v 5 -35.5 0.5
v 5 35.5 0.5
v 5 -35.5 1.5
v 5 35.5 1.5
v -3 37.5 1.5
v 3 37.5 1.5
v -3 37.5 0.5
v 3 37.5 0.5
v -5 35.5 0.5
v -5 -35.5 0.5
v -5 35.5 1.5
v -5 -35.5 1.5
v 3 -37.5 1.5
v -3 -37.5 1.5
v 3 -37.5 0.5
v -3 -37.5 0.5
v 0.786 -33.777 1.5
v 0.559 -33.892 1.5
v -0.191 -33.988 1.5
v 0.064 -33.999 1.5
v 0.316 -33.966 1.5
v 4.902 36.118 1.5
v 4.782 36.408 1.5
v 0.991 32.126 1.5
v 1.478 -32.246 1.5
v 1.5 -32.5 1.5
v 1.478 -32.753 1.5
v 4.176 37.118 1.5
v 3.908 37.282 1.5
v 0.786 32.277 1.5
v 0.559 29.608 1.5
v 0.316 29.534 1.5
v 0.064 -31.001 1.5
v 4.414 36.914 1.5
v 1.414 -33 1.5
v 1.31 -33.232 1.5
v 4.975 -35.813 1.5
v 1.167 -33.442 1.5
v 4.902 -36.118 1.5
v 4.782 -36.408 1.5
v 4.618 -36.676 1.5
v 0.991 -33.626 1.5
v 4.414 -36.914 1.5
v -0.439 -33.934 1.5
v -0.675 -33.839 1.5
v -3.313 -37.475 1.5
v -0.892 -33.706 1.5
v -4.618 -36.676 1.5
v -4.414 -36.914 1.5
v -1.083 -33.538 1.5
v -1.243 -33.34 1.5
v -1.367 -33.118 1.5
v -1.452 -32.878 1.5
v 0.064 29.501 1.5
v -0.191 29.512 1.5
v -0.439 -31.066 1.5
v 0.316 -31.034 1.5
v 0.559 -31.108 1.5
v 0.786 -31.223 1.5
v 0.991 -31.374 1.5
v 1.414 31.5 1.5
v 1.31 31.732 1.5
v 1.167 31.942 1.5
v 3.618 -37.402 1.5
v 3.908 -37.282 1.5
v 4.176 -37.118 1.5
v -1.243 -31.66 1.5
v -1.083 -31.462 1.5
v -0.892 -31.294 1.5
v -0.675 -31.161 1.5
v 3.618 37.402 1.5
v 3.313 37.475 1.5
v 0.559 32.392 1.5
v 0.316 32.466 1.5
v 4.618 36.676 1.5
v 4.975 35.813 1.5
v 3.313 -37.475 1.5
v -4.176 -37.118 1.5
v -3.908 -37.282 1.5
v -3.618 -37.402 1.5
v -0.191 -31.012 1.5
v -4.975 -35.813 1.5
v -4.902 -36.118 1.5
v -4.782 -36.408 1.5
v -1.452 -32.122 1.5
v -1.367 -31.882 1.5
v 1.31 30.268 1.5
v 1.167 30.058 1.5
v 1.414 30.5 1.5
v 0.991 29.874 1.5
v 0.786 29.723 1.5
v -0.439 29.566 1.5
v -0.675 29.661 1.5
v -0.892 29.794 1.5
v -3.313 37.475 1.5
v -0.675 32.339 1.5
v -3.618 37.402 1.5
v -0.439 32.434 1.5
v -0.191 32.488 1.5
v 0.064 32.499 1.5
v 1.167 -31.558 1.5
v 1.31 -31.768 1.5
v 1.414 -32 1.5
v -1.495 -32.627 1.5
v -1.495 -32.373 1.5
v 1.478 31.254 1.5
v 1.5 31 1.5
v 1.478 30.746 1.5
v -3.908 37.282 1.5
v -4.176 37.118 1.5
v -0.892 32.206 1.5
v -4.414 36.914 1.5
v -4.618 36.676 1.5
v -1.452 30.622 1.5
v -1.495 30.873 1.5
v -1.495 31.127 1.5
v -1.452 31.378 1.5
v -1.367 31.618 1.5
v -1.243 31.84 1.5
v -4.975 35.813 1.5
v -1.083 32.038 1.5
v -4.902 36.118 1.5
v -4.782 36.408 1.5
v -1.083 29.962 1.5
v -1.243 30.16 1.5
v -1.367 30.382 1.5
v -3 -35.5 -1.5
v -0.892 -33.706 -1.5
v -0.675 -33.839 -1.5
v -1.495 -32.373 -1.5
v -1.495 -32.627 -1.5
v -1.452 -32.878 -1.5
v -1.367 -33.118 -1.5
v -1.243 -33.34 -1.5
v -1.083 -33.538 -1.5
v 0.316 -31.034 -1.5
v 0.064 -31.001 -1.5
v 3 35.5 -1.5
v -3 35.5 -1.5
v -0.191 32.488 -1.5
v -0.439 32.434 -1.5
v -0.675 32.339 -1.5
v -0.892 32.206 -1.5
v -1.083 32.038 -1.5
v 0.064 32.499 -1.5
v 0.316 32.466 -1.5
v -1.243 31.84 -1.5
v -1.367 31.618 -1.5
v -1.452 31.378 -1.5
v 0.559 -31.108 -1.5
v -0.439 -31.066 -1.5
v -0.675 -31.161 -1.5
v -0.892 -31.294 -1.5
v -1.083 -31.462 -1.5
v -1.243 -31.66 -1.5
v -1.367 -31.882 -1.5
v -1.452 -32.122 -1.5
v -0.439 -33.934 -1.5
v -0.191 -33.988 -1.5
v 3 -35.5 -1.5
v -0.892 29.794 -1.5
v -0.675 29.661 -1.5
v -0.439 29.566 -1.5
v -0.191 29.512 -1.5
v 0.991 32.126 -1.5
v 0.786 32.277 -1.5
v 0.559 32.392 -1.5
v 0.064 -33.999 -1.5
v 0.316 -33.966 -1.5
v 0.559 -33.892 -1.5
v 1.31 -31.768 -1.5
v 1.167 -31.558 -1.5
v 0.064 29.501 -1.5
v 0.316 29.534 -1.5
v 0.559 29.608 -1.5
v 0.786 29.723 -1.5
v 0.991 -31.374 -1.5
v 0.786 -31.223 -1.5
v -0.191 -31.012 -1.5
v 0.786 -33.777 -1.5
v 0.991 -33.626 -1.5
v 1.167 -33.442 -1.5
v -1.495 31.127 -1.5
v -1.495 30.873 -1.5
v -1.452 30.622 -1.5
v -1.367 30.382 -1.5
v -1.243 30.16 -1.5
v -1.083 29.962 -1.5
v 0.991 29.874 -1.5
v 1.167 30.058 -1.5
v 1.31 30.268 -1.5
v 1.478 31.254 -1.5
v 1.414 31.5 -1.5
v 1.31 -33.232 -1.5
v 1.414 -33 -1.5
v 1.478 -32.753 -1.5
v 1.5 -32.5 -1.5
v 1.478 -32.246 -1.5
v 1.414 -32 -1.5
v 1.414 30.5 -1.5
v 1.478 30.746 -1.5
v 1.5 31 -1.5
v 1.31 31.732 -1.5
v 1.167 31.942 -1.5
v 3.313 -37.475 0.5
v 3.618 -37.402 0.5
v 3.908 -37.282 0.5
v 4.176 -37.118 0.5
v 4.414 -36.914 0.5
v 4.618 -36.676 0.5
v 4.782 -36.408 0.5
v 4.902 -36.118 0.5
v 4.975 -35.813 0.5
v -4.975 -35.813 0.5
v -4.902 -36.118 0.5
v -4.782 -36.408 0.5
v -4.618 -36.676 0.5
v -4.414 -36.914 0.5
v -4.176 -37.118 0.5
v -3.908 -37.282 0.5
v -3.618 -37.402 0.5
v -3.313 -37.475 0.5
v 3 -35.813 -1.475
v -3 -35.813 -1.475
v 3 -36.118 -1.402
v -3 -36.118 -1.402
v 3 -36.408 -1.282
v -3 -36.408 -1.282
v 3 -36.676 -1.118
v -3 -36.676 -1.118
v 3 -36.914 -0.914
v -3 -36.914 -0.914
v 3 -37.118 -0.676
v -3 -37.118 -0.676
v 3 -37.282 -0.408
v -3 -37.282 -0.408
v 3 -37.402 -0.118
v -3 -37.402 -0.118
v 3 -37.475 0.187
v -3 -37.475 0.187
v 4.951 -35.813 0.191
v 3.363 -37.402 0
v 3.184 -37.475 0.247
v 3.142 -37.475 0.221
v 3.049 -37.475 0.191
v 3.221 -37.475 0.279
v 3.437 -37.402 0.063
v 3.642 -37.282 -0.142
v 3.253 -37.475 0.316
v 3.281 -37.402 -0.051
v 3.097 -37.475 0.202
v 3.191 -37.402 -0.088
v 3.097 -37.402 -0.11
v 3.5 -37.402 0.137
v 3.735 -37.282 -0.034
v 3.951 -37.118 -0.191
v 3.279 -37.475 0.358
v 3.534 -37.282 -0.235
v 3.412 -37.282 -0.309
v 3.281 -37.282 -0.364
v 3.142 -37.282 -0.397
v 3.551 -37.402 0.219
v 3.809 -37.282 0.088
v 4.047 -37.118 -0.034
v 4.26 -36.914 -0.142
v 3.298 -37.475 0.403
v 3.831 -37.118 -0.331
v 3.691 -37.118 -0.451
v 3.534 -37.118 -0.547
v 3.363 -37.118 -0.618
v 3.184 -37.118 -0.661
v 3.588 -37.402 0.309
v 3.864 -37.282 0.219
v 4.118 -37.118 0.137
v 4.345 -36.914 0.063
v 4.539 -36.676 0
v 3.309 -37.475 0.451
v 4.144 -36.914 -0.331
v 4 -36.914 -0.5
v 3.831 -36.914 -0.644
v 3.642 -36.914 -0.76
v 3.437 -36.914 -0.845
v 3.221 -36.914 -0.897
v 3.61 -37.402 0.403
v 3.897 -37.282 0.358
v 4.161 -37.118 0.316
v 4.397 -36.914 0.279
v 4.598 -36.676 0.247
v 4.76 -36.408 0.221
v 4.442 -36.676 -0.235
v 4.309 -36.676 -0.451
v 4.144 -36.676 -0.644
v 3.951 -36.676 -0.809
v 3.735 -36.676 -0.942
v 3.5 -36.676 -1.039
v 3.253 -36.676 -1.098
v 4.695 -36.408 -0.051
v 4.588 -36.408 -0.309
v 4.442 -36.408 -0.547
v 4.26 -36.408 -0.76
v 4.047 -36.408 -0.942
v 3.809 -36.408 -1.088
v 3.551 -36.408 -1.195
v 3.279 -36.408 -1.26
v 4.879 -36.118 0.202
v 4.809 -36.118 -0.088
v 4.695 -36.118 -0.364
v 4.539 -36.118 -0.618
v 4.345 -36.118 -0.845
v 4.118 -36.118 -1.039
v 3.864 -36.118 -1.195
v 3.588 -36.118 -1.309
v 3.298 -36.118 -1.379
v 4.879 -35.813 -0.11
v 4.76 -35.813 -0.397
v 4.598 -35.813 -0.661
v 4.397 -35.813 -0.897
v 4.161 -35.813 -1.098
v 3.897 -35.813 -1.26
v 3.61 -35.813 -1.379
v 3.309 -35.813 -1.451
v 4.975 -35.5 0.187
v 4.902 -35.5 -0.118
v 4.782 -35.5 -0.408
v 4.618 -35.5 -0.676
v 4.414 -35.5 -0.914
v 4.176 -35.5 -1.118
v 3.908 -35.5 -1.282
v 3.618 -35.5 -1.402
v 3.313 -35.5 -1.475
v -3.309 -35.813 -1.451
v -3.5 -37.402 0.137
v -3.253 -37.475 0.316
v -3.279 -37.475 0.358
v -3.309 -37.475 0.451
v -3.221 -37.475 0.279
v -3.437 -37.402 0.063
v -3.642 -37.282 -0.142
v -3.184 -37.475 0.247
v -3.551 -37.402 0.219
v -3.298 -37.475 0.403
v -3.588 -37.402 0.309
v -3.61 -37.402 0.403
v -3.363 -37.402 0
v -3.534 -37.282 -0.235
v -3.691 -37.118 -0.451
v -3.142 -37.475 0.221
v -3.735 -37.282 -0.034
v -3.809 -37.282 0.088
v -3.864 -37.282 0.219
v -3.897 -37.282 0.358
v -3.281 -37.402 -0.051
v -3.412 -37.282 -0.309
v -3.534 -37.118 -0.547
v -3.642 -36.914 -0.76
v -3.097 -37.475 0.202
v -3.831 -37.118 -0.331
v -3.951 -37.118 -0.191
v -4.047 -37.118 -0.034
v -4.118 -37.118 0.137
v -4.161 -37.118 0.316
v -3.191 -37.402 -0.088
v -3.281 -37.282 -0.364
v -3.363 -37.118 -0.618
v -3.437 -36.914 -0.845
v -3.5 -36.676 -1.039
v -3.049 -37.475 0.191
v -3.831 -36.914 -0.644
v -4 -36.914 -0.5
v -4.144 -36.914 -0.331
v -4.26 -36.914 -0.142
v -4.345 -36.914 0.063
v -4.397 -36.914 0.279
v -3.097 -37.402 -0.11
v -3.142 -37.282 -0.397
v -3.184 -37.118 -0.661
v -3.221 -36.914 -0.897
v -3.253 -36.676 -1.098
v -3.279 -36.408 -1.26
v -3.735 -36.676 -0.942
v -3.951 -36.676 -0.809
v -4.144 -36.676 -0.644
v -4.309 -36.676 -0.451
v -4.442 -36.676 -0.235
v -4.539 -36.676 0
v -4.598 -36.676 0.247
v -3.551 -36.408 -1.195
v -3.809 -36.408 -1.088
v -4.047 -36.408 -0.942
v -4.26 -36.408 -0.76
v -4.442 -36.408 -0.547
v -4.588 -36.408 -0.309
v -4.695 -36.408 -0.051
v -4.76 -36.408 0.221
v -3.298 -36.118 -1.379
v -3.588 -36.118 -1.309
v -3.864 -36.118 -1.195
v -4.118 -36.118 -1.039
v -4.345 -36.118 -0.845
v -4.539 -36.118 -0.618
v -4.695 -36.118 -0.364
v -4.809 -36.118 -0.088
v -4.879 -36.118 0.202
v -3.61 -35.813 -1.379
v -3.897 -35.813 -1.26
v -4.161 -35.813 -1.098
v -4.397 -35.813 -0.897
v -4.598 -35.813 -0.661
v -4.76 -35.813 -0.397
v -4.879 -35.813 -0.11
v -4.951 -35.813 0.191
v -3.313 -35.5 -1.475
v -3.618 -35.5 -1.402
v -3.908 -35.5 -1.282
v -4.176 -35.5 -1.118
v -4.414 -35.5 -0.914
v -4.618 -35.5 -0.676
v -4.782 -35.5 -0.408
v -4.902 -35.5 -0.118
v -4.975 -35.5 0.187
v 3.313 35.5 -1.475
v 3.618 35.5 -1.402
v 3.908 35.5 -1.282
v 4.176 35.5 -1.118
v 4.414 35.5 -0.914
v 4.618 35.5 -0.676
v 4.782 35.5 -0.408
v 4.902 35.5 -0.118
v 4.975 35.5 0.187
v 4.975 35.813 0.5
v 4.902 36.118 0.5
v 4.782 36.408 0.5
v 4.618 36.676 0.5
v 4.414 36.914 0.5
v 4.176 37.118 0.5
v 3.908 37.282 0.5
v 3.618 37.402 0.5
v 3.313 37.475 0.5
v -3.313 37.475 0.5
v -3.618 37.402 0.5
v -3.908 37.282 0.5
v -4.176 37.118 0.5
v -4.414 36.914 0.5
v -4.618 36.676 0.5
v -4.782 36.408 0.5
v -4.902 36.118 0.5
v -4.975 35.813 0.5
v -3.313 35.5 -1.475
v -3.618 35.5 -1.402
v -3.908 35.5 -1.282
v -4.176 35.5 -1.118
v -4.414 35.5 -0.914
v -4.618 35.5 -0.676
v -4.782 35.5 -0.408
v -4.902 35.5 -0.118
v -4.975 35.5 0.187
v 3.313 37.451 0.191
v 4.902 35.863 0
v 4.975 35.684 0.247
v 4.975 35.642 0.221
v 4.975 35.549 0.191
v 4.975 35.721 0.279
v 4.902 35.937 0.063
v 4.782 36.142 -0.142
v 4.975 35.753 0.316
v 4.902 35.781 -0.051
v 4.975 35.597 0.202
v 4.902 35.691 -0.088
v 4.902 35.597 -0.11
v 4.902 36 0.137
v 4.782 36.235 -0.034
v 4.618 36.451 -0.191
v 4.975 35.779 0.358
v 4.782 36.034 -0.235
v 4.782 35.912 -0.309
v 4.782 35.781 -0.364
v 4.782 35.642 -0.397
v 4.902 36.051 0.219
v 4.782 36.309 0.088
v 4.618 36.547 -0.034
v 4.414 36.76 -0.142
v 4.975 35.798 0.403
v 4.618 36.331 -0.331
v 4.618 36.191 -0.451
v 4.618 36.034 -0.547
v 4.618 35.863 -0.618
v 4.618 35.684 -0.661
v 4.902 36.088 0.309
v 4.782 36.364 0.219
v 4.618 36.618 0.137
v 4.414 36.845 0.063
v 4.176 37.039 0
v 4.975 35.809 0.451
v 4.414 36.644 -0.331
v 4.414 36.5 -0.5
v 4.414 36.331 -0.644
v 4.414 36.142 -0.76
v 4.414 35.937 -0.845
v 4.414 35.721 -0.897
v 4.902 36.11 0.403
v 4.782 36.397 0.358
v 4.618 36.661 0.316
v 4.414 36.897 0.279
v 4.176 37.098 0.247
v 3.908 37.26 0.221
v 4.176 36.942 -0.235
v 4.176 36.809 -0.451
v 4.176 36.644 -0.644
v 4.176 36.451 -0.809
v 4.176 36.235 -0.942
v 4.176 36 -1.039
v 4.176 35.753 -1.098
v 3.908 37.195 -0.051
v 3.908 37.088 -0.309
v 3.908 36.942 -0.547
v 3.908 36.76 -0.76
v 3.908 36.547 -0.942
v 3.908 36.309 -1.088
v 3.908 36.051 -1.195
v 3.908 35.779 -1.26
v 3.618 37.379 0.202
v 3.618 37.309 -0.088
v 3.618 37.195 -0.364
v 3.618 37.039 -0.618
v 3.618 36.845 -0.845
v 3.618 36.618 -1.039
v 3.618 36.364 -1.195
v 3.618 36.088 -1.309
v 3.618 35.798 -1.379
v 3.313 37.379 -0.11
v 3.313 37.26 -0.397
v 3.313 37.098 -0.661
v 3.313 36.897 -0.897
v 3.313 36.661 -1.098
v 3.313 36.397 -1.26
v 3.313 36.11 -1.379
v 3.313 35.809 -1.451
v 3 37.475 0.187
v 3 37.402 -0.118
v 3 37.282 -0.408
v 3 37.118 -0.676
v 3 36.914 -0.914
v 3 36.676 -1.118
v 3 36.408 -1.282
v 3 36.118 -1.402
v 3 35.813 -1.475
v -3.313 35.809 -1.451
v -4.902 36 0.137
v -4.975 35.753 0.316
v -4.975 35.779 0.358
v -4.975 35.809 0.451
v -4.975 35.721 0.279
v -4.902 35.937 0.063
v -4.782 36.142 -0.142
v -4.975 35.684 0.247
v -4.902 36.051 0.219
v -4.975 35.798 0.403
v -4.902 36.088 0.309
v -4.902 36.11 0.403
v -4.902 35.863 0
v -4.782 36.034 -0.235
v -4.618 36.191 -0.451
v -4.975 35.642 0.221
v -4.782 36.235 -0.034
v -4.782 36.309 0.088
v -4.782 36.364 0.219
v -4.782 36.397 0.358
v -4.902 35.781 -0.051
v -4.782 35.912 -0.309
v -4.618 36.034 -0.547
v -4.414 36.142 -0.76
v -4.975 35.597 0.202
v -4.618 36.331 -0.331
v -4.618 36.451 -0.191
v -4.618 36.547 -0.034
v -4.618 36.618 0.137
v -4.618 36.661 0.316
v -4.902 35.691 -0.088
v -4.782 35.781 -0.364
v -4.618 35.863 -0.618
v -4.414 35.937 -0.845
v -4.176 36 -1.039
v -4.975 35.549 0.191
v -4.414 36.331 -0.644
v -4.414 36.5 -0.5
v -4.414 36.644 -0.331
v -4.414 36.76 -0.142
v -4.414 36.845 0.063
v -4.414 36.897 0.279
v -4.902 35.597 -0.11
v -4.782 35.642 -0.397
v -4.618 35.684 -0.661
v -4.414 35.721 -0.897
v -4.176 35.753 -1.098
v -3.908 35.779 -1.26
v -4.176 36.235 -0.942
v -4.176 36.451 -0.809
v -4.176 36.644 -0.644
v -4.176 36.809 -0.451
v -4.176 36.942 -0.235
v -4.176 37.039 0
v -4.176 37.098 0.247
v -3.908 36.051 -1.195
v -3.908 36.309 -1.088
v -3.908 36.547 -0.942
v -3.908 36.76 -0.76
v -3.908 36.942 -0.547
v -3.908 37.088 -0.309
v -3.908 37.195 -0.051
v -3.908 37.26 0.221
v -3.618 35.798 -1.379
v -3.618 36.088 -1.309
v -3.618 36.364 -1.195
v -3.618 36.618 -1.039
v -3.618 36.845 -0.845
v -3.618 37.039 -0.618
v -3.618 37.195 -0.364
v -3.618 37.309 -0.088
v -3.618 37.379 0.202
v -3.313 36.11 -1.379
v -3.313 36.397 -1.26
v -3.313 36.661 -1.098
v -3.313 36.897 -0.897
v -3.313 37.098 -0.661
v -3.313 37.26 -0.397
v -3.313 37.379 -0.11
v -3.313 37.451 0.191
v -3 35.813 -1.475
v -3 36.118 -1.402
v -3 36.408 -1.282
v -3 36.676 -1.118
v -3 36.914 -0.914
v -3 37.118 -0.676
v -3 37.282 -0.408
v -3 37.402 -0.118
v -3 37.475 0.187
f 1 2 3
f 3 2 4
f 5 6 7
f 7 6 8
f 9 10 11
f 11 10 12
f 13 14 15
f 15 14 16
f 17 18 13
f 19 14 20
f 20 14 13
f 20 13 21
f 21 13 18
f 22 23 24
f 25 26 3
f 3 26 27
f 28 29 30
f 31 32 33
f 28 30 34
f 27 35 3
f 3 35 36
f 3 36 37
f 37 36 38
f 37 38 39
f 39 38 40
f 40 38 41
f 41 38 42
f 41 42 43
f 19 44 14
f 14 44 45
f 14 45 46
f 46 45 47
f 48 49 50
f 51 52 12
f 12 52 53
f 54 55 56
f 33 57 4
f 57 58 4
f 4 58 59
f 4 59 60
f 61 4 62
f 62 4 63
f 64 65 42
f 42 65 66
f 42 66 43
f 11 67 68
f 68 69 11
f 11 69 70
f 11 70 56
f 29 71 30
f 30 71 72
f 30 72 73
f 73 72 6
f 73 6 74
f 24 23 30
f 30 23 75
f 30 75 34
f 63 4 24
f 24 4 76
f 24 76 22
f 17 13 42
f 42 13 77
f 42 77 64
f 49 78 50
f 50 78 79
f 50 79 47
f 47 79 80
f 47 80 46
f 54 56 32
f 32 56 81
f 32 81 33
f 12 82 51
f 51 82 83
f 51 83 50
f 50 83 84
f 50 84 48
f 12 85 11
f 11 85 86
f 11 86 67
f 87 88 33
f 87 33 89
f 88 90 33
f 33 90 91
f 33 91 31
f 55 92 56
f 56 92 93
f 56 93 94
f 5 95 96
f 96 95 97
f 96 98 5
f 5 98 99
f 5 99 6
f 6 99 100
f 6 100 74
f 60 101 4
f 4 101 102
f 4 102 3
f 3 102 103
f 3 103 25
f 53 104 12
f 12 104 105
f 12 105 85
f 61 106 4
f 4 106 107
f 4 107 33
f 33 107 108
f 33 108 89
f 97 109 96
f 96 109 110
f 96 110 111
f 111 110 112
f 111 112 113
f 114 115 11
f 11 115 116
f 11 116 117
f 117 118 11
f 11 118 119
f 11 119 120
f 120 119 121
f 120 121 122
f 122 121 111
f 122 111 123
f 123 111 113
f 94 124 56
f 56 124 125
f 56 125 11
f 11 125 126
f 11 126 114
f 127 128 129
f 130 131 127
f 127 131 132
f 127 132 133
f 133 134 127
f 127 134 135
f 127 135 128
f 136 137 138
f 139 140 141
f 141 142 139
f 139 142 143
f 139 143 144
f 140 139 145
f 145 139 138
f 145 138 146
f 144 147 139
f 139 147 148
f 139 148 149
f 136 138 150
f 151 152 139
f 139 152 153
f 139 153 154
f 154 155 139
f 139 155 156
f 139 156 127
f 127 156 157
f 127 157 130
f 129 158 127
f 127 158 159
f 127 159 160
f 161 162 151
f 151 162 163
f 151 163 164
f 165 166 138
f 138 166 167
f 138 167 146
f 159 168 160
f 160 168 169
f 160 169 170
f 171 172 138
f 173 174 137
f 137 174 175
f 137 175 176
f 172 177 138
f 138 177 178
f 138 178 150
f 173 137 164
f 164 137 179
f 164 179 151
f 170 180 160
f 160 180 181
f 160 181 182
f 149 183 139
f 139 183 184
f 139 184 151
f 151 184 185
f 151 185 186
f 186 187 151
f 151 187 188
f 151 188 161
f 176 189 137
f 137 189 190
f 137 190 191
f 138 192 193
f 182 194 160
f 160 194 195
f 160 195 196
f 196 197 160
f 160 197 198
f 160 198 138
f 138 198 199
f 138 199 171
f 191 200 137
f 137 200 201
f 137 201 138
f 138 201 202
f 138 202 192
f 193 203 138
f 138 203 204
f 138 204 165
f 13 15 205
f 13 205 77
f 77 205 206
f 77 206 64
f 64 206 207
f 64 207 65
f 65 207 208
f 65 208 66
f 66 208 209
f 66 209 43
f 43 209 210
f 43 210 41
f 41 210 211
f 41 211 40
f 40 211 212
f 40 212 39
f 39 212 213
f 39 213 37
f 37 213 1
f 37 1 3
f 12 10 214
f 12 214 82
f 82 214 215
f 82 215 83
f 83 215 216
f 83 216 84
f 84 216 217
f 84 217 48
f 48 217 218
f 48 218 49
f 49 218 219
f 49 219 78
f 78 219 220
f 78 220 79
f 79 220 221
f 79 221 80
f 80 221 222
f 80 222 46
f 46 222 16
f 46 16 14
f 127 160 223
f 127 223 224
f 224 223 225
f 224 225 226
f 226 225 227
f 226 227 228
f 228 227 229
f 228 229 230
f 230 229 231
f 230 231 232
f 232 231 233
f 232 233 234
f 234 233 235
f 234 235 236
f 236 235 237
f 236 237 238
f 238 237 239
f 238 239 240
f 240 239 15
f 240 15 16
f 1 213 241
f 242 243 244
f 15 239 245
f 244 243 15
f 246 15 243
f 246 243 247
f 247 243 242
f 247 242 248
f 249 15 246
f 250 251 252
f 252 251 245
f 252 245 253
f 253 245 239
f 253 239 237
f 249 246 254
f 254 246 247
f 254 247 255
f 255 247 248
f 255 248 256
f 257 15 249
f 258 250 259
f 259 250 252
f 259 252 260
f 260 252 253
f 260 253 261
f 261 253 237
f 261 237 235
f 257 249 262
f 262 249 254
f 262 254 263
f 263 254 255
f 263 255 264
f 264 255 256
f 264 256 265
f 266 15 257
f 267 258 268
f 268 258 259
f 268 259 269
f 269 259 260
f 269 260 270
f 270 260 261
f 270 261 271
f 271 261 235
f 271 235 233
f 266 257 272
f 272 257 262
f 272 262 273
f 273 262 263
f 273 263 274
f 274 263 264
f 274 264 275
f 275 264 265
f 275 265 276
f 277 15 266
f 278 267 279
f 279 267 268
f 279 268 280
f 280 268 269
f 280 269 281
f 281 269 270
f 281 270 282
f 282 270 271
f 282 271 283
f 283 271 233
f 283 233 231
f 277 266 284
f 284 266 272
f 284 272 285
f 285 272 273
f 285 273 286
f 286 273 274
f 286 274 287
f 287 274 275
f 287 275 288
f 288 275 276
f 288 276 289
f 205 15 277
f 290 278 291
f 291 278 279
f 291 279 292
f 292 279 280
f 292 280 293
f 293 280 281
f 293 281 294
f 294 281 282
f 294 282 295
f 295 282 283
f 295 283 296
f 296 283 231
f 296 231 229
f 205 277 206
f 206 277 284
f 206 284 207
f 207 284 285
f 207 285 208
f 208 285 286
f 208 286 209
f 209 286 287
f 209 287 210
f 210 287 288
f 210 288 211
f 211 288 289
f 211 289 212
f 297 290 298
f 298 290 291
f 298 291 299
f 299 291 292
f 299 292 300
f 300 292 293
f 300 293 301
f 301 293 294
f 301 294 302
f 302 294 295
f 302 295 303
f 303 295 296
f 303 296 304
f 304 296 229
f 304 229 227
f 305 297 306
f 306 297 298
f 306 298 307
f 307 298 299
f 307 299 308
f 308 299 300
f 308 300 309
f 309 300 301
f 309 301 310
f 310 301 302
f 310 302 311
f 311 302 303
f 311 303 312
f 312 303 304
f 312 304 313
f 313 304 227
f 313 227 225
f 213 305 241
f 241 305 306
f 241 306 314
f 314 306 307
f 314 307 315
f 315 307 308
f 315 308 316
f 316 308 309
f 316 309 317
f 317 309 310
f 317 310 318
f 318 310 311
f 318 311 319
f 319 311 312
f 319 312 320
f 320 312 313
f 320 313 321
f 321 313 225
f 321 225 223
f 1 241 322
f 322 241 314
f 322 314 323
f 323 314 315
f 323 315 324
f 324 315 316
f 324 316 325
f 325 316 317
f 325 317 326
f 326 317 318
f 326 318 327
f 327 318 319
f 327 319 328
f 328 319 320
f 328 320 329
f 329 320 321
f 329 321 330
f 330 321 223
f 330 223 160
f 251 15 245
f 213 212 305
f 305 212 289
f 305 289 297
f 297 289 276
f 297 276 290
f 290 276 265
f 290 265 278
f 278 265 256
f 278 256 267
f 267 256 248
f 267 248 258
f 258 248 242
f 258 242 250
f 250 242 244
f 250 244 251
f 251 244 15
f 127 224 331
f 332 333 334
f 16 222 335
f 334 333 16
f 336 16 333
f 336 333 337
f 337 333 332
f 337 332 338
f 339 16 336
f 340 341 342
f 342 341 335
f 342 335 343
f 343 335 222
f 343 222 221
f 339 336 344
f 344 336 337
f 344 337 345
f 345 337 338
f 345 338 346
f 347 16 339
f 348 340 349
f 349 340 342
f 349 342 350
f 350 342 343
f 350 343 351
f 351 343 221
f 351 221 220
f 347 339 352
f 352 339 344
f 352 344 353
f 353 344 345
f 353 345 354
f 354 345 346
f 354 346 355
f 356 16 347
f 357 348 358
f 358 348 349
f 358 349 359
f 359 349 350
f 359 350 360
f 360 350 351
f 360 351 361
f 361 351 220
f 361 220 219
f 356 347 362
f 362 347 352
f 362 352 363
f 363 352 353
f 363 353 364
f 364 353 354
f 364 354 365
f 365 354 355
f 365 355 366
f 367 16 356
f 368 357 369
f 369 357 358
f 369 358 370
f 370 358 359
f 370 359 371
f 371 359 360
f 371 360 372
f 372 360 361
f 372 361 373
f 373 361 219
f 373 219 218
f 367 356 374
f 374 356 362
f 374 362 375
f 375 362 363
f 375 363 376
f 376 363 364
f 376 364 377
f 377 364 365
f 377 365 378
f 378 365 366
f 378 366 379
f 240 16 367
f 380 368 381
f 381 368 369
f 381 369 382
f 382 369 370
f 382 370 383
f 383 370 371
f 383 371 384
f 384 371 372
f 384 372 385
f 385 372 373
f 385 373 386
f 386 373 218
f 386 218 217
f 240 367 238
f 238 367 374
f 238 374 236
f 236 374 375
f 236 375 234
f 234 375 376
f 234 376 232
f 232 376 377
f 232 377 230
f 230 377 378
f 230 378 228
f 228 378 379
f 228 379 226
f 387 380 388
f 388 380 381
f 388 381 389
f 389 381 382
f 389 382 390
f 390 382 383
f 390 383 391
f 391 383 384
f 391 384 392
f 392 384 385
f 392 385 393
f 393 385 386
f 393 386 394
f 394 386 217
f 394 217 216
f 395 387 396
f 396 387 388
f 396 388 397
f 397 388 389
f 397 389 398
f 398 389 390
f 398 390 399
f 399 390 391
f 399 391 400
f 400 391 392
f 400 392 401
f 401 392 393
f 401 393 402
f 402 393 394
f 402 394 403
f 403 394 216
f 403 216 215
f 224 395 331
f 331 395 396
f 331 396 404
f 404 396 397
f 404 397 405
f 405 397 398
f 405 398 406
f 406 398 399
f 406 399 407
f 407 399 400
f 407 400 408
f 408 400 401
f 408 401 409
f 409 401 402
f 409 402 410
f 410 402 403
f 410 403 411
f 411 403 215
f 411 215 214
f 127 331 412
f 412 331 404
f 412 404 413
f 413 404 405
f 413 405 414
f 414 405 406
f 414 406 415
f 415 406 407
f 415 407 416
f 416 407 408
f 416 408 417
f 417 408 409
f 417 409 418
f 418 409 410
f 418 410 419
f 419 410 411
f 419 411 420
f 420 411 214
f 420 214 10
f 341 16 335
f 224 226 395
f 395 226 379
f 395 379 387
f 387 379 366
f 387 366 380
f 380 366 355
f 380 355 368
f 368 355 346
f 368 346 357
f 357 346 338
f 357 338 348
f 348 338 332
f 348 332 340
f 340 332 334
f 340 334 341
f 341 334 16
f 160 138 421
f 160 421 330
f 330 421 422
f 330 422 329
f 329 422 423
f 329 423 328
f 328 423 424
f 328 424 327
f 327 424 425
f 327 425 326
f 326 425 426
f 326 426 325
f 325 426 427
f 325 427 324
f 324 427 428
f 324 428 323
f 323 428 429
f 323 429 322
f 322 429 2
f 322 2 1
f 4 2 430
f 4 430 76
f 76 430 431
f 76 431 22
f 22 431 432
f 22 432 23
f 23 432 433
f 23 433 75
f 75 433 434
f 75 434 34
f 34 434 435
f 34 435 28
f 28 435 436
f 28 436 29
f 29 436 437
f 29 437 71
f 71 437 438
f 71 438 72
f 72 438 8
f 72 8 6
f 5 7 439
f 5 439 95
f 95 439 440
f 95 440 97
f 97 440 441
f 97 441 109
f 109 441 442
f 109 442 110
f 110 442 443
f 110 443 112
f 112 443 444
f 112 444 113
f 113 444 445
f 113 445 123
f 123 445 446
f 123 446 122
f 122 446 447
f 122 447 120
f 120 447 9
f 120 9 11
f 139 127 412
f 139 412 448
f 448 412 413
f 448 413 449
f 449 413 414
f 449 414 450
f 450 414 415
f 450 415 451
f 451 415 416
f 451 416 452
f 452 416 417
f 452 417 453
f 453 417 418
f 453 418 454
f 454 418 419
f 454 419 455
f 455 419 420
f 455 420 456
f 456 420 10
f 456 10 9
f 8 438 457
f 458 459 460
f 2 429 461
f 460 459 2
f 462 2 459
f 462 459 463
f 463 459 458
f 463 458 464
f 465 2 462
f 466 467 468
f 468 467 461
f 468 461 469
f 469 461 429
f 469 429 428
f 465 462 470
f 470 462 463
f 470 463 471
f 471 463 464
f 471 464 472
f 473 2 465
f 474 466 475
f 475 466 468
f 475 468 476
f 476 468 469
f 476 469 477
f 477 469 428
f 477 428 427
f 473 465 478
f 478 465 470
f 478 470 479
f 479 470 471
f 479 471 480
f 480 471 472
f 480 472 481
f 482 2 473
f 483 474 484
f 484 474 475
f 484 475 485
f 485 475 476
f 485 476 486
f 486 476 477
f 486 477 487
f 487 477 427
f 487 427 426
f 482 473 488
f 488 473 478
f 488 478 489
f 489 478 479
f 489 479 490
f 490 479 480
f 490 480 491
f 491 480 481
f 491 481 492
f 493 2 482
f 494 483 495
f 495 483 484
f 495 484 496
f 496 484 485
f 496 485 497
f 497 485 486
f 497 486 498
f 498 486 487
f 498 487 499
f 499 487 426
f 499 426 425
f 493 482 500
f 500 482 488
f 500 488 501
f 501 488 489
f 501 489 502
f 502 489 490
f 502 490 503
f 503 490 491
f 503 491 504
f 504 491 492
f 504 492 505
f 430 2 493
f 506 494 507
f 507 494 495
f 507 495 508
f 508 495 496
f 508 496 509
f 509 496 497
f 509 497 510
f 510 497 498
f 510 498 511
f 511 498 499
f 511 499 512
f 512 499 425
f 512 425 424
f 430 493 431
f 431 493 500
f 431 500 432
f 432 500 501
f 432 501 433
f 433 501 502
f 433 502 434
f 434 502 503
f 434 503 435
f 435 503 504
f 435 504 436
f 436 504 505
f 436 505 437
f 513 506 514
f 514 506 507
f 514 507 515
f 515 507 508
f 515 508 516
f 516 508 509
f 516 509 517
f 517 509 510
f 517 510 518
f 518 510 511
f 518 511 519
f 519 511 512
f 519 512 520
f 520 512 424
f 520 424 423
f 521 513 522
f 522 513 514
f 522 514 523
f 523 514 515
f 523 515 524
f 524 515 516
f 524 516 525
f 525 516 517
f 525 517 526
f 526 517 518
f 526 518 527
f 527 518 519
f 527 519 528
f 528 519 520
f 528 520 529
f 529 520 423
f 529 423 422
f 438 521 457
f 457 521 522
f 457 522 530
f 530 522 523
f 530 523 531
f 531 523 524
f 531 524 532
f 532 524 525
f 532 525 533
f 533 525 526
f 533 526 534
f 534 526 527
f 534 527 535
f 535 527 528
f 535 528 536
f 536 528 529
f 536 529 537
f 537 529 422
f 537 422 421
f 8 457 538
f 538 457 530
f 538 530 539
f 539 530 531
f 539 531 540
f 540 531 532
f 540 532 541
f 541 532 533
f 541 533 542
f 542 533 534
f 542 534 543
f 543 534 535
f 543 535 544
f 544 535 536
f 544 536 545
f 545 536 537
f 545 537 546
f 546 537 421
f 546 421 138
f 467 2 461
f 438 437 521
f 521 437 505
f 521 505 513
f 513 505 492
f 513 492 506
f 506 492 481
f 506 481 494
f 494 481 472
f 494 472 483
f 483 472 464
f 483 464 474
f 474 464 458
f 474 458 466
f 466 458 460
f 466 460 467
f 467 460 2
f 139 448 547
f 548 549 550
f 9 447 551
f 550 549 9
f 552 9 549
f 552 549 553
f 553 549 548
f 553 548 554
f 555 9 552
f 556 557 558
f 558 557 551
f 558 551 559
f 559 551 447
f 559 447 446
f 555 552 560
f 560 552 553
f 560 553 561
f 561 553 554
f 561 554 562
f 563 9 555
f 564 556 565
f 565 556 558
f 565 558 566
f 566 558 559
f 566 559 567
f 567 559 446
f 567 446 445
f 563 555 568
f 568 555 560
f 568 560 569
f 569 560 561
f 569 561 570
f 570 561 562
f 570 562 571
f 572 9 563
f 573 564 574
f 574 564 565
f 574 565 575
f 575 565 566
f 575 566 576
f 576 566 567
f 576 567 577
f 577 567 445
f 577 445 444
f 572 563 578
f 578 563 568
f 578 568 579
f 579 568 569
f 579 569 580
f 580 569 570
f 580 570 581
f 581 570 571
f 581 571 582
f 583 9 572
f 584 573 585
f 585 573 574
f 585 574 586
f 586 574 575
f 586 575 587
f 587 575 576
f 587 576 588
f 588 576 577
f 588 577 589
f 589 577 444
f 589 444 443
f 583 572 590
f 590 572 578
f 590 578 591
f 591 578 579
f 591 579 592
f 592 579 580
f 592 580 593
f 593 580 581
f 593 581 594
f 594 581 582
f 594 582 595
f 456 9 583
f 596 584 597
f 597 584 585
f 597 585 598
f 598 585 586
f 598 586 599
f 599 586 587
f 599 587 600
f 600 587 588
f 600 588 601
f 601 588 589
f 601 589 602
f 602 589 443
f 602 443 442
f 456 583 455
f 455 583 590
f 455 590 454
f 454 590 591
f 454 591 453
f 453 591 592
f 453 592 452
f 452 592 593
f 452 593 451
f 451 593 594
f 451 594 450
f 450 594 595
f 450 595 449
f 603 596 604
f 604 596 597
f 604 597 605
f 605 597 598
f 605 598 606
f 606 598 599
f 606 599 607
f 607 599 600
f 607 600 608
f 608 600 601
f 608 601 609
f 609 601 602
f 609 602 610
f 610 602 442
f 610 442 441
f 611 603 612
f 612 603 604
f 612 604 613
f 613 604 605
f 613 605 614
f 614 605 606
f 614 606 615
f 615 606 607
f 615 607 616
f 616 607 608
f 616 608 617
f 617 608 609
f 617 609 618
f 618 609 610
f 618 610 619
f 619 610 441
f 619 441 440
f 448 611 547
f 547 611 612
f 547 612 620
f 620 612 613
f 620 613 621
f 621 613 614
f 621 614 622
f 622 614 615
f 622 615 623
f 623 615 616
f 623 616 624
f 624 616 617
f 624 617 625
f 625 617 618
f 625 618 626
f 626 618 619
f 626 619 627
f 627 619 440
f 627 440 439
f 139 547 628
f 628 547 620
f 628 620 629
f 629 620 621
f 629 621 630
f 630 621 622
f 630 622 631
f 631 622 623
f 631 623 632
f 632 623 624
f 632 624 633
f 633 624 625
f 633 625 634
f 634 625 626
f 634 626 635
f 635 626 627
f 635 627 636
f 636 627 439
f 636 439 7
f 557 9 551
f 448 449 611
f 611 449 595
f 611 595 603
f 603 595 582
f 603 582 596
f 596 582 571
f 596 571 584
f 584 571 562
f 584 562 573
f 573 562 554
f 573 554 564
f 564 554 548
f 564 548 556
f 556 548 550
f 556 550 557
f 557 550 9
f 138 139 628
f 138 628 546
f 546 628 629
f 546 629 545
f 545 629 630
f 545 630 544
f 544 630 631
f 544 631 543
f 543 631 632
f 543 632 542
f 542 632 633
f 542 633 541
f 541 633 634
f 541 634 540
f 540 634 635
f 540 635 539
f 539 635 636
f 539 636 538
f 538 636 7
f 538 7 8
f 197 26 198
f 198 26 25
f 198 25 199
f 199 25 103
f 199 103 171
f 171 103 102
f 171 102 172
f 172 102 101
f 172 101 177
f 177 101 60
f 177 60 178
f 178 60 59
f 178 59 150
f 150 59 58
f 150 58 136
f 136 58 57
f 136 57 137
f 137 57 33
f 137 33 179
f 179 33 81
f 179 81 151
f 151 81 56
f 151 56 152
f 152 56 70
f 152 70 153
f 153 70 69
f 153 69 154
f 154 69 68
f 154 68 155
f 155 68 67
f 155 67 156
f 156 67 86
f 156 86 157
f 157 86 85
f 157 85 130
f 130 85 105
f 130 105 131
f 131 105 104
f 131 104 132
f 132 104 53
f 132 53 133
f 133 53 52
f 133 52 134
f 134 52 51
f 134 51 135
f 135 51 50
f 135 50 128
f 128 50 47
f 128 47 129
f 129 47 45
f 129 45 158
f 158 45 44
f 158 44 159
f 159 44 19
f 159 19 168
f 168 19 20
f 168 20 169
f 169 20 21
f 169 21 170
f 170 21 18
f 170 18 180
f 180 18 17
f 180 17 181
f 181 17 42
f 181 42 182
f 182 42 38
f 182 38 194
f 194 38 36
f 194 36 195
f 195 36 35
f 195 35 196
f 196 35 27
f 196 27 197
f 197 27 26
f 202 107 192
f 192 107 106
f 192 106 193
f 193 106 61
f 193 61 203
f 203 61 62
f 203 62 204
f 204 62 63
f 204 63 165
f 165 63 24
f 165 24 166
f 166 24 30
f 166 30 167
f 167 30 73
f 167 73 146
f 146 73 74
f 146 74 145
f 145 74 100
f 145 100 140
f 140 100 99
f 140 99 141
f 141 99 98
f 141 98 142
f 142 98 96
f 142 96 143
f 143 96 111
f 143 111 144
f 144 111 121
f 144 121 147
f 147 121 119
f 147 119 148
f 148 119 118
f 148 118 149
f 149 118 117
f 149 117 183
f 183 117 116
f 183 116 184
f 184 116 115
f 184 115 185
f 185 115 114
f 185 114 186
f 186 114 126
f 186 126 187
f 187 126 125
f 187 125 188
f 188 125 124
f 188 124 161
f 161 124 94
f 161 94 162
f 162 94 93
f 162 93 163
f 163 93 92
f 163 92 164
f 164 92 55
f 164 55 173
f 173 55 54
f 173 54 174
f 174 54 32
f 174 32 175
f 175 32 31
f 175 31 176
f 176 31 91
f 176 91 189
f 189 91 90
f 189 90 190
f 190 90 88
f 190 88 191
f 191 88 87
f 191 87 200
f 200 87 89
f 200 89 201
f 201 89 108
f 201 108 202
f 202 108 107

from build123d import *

# Parameters (mm, degrees)
SKETCH_1_W          = 10
SKETCH_1_H          = 75
EXTRUDE_1_DEPTH     = 1.5
FILLET_1_R          = 2
SKETCH_3_R          = 1.5
CUT_EXTRUDE_1_DEPTH = 10


with BuildPart() as part:
    # 草图1 → 凸台-拉伸1 (new, symmetric)
    with BuildSketch(Plane.XY):
        Rectangle(SKETCH_1_W, SKETCH_1_H)
    extrude(amount=EXTRUDE_1_DEPTH, both=True)

    # 圆角1
    fillet_1_edges = [part.edges().sort_by_distance(p)[0] for p in [
        (0, -37.5, -1.5),
        (-5, 0, -1.5),
        (0, 37.5, -1.5),
        (5, 0, -1.5),
        (5, -37.5, 0),
        (-5, -37.5, 0),
        (-5, 37.5, 0),
        (5, 37.5, 0),
    ]]
    fillet(fillet_1_edges, radius=FILLET_1_R)

    # 草图3 → 切除-拉伸1 (cut)
    with BuildSketch(Plane.XY.offset(1.5)):
        with Locations((0, 31)):
            Circle(SKETCH_3_R)
        with Locations((0, -32.5)):
            Circle(SKETCH_3_R)
    extrude(amount=-CUT_EXTRUDE_1_DEPTH, mode=Mode.SUBTRACT)


solid = part.part
